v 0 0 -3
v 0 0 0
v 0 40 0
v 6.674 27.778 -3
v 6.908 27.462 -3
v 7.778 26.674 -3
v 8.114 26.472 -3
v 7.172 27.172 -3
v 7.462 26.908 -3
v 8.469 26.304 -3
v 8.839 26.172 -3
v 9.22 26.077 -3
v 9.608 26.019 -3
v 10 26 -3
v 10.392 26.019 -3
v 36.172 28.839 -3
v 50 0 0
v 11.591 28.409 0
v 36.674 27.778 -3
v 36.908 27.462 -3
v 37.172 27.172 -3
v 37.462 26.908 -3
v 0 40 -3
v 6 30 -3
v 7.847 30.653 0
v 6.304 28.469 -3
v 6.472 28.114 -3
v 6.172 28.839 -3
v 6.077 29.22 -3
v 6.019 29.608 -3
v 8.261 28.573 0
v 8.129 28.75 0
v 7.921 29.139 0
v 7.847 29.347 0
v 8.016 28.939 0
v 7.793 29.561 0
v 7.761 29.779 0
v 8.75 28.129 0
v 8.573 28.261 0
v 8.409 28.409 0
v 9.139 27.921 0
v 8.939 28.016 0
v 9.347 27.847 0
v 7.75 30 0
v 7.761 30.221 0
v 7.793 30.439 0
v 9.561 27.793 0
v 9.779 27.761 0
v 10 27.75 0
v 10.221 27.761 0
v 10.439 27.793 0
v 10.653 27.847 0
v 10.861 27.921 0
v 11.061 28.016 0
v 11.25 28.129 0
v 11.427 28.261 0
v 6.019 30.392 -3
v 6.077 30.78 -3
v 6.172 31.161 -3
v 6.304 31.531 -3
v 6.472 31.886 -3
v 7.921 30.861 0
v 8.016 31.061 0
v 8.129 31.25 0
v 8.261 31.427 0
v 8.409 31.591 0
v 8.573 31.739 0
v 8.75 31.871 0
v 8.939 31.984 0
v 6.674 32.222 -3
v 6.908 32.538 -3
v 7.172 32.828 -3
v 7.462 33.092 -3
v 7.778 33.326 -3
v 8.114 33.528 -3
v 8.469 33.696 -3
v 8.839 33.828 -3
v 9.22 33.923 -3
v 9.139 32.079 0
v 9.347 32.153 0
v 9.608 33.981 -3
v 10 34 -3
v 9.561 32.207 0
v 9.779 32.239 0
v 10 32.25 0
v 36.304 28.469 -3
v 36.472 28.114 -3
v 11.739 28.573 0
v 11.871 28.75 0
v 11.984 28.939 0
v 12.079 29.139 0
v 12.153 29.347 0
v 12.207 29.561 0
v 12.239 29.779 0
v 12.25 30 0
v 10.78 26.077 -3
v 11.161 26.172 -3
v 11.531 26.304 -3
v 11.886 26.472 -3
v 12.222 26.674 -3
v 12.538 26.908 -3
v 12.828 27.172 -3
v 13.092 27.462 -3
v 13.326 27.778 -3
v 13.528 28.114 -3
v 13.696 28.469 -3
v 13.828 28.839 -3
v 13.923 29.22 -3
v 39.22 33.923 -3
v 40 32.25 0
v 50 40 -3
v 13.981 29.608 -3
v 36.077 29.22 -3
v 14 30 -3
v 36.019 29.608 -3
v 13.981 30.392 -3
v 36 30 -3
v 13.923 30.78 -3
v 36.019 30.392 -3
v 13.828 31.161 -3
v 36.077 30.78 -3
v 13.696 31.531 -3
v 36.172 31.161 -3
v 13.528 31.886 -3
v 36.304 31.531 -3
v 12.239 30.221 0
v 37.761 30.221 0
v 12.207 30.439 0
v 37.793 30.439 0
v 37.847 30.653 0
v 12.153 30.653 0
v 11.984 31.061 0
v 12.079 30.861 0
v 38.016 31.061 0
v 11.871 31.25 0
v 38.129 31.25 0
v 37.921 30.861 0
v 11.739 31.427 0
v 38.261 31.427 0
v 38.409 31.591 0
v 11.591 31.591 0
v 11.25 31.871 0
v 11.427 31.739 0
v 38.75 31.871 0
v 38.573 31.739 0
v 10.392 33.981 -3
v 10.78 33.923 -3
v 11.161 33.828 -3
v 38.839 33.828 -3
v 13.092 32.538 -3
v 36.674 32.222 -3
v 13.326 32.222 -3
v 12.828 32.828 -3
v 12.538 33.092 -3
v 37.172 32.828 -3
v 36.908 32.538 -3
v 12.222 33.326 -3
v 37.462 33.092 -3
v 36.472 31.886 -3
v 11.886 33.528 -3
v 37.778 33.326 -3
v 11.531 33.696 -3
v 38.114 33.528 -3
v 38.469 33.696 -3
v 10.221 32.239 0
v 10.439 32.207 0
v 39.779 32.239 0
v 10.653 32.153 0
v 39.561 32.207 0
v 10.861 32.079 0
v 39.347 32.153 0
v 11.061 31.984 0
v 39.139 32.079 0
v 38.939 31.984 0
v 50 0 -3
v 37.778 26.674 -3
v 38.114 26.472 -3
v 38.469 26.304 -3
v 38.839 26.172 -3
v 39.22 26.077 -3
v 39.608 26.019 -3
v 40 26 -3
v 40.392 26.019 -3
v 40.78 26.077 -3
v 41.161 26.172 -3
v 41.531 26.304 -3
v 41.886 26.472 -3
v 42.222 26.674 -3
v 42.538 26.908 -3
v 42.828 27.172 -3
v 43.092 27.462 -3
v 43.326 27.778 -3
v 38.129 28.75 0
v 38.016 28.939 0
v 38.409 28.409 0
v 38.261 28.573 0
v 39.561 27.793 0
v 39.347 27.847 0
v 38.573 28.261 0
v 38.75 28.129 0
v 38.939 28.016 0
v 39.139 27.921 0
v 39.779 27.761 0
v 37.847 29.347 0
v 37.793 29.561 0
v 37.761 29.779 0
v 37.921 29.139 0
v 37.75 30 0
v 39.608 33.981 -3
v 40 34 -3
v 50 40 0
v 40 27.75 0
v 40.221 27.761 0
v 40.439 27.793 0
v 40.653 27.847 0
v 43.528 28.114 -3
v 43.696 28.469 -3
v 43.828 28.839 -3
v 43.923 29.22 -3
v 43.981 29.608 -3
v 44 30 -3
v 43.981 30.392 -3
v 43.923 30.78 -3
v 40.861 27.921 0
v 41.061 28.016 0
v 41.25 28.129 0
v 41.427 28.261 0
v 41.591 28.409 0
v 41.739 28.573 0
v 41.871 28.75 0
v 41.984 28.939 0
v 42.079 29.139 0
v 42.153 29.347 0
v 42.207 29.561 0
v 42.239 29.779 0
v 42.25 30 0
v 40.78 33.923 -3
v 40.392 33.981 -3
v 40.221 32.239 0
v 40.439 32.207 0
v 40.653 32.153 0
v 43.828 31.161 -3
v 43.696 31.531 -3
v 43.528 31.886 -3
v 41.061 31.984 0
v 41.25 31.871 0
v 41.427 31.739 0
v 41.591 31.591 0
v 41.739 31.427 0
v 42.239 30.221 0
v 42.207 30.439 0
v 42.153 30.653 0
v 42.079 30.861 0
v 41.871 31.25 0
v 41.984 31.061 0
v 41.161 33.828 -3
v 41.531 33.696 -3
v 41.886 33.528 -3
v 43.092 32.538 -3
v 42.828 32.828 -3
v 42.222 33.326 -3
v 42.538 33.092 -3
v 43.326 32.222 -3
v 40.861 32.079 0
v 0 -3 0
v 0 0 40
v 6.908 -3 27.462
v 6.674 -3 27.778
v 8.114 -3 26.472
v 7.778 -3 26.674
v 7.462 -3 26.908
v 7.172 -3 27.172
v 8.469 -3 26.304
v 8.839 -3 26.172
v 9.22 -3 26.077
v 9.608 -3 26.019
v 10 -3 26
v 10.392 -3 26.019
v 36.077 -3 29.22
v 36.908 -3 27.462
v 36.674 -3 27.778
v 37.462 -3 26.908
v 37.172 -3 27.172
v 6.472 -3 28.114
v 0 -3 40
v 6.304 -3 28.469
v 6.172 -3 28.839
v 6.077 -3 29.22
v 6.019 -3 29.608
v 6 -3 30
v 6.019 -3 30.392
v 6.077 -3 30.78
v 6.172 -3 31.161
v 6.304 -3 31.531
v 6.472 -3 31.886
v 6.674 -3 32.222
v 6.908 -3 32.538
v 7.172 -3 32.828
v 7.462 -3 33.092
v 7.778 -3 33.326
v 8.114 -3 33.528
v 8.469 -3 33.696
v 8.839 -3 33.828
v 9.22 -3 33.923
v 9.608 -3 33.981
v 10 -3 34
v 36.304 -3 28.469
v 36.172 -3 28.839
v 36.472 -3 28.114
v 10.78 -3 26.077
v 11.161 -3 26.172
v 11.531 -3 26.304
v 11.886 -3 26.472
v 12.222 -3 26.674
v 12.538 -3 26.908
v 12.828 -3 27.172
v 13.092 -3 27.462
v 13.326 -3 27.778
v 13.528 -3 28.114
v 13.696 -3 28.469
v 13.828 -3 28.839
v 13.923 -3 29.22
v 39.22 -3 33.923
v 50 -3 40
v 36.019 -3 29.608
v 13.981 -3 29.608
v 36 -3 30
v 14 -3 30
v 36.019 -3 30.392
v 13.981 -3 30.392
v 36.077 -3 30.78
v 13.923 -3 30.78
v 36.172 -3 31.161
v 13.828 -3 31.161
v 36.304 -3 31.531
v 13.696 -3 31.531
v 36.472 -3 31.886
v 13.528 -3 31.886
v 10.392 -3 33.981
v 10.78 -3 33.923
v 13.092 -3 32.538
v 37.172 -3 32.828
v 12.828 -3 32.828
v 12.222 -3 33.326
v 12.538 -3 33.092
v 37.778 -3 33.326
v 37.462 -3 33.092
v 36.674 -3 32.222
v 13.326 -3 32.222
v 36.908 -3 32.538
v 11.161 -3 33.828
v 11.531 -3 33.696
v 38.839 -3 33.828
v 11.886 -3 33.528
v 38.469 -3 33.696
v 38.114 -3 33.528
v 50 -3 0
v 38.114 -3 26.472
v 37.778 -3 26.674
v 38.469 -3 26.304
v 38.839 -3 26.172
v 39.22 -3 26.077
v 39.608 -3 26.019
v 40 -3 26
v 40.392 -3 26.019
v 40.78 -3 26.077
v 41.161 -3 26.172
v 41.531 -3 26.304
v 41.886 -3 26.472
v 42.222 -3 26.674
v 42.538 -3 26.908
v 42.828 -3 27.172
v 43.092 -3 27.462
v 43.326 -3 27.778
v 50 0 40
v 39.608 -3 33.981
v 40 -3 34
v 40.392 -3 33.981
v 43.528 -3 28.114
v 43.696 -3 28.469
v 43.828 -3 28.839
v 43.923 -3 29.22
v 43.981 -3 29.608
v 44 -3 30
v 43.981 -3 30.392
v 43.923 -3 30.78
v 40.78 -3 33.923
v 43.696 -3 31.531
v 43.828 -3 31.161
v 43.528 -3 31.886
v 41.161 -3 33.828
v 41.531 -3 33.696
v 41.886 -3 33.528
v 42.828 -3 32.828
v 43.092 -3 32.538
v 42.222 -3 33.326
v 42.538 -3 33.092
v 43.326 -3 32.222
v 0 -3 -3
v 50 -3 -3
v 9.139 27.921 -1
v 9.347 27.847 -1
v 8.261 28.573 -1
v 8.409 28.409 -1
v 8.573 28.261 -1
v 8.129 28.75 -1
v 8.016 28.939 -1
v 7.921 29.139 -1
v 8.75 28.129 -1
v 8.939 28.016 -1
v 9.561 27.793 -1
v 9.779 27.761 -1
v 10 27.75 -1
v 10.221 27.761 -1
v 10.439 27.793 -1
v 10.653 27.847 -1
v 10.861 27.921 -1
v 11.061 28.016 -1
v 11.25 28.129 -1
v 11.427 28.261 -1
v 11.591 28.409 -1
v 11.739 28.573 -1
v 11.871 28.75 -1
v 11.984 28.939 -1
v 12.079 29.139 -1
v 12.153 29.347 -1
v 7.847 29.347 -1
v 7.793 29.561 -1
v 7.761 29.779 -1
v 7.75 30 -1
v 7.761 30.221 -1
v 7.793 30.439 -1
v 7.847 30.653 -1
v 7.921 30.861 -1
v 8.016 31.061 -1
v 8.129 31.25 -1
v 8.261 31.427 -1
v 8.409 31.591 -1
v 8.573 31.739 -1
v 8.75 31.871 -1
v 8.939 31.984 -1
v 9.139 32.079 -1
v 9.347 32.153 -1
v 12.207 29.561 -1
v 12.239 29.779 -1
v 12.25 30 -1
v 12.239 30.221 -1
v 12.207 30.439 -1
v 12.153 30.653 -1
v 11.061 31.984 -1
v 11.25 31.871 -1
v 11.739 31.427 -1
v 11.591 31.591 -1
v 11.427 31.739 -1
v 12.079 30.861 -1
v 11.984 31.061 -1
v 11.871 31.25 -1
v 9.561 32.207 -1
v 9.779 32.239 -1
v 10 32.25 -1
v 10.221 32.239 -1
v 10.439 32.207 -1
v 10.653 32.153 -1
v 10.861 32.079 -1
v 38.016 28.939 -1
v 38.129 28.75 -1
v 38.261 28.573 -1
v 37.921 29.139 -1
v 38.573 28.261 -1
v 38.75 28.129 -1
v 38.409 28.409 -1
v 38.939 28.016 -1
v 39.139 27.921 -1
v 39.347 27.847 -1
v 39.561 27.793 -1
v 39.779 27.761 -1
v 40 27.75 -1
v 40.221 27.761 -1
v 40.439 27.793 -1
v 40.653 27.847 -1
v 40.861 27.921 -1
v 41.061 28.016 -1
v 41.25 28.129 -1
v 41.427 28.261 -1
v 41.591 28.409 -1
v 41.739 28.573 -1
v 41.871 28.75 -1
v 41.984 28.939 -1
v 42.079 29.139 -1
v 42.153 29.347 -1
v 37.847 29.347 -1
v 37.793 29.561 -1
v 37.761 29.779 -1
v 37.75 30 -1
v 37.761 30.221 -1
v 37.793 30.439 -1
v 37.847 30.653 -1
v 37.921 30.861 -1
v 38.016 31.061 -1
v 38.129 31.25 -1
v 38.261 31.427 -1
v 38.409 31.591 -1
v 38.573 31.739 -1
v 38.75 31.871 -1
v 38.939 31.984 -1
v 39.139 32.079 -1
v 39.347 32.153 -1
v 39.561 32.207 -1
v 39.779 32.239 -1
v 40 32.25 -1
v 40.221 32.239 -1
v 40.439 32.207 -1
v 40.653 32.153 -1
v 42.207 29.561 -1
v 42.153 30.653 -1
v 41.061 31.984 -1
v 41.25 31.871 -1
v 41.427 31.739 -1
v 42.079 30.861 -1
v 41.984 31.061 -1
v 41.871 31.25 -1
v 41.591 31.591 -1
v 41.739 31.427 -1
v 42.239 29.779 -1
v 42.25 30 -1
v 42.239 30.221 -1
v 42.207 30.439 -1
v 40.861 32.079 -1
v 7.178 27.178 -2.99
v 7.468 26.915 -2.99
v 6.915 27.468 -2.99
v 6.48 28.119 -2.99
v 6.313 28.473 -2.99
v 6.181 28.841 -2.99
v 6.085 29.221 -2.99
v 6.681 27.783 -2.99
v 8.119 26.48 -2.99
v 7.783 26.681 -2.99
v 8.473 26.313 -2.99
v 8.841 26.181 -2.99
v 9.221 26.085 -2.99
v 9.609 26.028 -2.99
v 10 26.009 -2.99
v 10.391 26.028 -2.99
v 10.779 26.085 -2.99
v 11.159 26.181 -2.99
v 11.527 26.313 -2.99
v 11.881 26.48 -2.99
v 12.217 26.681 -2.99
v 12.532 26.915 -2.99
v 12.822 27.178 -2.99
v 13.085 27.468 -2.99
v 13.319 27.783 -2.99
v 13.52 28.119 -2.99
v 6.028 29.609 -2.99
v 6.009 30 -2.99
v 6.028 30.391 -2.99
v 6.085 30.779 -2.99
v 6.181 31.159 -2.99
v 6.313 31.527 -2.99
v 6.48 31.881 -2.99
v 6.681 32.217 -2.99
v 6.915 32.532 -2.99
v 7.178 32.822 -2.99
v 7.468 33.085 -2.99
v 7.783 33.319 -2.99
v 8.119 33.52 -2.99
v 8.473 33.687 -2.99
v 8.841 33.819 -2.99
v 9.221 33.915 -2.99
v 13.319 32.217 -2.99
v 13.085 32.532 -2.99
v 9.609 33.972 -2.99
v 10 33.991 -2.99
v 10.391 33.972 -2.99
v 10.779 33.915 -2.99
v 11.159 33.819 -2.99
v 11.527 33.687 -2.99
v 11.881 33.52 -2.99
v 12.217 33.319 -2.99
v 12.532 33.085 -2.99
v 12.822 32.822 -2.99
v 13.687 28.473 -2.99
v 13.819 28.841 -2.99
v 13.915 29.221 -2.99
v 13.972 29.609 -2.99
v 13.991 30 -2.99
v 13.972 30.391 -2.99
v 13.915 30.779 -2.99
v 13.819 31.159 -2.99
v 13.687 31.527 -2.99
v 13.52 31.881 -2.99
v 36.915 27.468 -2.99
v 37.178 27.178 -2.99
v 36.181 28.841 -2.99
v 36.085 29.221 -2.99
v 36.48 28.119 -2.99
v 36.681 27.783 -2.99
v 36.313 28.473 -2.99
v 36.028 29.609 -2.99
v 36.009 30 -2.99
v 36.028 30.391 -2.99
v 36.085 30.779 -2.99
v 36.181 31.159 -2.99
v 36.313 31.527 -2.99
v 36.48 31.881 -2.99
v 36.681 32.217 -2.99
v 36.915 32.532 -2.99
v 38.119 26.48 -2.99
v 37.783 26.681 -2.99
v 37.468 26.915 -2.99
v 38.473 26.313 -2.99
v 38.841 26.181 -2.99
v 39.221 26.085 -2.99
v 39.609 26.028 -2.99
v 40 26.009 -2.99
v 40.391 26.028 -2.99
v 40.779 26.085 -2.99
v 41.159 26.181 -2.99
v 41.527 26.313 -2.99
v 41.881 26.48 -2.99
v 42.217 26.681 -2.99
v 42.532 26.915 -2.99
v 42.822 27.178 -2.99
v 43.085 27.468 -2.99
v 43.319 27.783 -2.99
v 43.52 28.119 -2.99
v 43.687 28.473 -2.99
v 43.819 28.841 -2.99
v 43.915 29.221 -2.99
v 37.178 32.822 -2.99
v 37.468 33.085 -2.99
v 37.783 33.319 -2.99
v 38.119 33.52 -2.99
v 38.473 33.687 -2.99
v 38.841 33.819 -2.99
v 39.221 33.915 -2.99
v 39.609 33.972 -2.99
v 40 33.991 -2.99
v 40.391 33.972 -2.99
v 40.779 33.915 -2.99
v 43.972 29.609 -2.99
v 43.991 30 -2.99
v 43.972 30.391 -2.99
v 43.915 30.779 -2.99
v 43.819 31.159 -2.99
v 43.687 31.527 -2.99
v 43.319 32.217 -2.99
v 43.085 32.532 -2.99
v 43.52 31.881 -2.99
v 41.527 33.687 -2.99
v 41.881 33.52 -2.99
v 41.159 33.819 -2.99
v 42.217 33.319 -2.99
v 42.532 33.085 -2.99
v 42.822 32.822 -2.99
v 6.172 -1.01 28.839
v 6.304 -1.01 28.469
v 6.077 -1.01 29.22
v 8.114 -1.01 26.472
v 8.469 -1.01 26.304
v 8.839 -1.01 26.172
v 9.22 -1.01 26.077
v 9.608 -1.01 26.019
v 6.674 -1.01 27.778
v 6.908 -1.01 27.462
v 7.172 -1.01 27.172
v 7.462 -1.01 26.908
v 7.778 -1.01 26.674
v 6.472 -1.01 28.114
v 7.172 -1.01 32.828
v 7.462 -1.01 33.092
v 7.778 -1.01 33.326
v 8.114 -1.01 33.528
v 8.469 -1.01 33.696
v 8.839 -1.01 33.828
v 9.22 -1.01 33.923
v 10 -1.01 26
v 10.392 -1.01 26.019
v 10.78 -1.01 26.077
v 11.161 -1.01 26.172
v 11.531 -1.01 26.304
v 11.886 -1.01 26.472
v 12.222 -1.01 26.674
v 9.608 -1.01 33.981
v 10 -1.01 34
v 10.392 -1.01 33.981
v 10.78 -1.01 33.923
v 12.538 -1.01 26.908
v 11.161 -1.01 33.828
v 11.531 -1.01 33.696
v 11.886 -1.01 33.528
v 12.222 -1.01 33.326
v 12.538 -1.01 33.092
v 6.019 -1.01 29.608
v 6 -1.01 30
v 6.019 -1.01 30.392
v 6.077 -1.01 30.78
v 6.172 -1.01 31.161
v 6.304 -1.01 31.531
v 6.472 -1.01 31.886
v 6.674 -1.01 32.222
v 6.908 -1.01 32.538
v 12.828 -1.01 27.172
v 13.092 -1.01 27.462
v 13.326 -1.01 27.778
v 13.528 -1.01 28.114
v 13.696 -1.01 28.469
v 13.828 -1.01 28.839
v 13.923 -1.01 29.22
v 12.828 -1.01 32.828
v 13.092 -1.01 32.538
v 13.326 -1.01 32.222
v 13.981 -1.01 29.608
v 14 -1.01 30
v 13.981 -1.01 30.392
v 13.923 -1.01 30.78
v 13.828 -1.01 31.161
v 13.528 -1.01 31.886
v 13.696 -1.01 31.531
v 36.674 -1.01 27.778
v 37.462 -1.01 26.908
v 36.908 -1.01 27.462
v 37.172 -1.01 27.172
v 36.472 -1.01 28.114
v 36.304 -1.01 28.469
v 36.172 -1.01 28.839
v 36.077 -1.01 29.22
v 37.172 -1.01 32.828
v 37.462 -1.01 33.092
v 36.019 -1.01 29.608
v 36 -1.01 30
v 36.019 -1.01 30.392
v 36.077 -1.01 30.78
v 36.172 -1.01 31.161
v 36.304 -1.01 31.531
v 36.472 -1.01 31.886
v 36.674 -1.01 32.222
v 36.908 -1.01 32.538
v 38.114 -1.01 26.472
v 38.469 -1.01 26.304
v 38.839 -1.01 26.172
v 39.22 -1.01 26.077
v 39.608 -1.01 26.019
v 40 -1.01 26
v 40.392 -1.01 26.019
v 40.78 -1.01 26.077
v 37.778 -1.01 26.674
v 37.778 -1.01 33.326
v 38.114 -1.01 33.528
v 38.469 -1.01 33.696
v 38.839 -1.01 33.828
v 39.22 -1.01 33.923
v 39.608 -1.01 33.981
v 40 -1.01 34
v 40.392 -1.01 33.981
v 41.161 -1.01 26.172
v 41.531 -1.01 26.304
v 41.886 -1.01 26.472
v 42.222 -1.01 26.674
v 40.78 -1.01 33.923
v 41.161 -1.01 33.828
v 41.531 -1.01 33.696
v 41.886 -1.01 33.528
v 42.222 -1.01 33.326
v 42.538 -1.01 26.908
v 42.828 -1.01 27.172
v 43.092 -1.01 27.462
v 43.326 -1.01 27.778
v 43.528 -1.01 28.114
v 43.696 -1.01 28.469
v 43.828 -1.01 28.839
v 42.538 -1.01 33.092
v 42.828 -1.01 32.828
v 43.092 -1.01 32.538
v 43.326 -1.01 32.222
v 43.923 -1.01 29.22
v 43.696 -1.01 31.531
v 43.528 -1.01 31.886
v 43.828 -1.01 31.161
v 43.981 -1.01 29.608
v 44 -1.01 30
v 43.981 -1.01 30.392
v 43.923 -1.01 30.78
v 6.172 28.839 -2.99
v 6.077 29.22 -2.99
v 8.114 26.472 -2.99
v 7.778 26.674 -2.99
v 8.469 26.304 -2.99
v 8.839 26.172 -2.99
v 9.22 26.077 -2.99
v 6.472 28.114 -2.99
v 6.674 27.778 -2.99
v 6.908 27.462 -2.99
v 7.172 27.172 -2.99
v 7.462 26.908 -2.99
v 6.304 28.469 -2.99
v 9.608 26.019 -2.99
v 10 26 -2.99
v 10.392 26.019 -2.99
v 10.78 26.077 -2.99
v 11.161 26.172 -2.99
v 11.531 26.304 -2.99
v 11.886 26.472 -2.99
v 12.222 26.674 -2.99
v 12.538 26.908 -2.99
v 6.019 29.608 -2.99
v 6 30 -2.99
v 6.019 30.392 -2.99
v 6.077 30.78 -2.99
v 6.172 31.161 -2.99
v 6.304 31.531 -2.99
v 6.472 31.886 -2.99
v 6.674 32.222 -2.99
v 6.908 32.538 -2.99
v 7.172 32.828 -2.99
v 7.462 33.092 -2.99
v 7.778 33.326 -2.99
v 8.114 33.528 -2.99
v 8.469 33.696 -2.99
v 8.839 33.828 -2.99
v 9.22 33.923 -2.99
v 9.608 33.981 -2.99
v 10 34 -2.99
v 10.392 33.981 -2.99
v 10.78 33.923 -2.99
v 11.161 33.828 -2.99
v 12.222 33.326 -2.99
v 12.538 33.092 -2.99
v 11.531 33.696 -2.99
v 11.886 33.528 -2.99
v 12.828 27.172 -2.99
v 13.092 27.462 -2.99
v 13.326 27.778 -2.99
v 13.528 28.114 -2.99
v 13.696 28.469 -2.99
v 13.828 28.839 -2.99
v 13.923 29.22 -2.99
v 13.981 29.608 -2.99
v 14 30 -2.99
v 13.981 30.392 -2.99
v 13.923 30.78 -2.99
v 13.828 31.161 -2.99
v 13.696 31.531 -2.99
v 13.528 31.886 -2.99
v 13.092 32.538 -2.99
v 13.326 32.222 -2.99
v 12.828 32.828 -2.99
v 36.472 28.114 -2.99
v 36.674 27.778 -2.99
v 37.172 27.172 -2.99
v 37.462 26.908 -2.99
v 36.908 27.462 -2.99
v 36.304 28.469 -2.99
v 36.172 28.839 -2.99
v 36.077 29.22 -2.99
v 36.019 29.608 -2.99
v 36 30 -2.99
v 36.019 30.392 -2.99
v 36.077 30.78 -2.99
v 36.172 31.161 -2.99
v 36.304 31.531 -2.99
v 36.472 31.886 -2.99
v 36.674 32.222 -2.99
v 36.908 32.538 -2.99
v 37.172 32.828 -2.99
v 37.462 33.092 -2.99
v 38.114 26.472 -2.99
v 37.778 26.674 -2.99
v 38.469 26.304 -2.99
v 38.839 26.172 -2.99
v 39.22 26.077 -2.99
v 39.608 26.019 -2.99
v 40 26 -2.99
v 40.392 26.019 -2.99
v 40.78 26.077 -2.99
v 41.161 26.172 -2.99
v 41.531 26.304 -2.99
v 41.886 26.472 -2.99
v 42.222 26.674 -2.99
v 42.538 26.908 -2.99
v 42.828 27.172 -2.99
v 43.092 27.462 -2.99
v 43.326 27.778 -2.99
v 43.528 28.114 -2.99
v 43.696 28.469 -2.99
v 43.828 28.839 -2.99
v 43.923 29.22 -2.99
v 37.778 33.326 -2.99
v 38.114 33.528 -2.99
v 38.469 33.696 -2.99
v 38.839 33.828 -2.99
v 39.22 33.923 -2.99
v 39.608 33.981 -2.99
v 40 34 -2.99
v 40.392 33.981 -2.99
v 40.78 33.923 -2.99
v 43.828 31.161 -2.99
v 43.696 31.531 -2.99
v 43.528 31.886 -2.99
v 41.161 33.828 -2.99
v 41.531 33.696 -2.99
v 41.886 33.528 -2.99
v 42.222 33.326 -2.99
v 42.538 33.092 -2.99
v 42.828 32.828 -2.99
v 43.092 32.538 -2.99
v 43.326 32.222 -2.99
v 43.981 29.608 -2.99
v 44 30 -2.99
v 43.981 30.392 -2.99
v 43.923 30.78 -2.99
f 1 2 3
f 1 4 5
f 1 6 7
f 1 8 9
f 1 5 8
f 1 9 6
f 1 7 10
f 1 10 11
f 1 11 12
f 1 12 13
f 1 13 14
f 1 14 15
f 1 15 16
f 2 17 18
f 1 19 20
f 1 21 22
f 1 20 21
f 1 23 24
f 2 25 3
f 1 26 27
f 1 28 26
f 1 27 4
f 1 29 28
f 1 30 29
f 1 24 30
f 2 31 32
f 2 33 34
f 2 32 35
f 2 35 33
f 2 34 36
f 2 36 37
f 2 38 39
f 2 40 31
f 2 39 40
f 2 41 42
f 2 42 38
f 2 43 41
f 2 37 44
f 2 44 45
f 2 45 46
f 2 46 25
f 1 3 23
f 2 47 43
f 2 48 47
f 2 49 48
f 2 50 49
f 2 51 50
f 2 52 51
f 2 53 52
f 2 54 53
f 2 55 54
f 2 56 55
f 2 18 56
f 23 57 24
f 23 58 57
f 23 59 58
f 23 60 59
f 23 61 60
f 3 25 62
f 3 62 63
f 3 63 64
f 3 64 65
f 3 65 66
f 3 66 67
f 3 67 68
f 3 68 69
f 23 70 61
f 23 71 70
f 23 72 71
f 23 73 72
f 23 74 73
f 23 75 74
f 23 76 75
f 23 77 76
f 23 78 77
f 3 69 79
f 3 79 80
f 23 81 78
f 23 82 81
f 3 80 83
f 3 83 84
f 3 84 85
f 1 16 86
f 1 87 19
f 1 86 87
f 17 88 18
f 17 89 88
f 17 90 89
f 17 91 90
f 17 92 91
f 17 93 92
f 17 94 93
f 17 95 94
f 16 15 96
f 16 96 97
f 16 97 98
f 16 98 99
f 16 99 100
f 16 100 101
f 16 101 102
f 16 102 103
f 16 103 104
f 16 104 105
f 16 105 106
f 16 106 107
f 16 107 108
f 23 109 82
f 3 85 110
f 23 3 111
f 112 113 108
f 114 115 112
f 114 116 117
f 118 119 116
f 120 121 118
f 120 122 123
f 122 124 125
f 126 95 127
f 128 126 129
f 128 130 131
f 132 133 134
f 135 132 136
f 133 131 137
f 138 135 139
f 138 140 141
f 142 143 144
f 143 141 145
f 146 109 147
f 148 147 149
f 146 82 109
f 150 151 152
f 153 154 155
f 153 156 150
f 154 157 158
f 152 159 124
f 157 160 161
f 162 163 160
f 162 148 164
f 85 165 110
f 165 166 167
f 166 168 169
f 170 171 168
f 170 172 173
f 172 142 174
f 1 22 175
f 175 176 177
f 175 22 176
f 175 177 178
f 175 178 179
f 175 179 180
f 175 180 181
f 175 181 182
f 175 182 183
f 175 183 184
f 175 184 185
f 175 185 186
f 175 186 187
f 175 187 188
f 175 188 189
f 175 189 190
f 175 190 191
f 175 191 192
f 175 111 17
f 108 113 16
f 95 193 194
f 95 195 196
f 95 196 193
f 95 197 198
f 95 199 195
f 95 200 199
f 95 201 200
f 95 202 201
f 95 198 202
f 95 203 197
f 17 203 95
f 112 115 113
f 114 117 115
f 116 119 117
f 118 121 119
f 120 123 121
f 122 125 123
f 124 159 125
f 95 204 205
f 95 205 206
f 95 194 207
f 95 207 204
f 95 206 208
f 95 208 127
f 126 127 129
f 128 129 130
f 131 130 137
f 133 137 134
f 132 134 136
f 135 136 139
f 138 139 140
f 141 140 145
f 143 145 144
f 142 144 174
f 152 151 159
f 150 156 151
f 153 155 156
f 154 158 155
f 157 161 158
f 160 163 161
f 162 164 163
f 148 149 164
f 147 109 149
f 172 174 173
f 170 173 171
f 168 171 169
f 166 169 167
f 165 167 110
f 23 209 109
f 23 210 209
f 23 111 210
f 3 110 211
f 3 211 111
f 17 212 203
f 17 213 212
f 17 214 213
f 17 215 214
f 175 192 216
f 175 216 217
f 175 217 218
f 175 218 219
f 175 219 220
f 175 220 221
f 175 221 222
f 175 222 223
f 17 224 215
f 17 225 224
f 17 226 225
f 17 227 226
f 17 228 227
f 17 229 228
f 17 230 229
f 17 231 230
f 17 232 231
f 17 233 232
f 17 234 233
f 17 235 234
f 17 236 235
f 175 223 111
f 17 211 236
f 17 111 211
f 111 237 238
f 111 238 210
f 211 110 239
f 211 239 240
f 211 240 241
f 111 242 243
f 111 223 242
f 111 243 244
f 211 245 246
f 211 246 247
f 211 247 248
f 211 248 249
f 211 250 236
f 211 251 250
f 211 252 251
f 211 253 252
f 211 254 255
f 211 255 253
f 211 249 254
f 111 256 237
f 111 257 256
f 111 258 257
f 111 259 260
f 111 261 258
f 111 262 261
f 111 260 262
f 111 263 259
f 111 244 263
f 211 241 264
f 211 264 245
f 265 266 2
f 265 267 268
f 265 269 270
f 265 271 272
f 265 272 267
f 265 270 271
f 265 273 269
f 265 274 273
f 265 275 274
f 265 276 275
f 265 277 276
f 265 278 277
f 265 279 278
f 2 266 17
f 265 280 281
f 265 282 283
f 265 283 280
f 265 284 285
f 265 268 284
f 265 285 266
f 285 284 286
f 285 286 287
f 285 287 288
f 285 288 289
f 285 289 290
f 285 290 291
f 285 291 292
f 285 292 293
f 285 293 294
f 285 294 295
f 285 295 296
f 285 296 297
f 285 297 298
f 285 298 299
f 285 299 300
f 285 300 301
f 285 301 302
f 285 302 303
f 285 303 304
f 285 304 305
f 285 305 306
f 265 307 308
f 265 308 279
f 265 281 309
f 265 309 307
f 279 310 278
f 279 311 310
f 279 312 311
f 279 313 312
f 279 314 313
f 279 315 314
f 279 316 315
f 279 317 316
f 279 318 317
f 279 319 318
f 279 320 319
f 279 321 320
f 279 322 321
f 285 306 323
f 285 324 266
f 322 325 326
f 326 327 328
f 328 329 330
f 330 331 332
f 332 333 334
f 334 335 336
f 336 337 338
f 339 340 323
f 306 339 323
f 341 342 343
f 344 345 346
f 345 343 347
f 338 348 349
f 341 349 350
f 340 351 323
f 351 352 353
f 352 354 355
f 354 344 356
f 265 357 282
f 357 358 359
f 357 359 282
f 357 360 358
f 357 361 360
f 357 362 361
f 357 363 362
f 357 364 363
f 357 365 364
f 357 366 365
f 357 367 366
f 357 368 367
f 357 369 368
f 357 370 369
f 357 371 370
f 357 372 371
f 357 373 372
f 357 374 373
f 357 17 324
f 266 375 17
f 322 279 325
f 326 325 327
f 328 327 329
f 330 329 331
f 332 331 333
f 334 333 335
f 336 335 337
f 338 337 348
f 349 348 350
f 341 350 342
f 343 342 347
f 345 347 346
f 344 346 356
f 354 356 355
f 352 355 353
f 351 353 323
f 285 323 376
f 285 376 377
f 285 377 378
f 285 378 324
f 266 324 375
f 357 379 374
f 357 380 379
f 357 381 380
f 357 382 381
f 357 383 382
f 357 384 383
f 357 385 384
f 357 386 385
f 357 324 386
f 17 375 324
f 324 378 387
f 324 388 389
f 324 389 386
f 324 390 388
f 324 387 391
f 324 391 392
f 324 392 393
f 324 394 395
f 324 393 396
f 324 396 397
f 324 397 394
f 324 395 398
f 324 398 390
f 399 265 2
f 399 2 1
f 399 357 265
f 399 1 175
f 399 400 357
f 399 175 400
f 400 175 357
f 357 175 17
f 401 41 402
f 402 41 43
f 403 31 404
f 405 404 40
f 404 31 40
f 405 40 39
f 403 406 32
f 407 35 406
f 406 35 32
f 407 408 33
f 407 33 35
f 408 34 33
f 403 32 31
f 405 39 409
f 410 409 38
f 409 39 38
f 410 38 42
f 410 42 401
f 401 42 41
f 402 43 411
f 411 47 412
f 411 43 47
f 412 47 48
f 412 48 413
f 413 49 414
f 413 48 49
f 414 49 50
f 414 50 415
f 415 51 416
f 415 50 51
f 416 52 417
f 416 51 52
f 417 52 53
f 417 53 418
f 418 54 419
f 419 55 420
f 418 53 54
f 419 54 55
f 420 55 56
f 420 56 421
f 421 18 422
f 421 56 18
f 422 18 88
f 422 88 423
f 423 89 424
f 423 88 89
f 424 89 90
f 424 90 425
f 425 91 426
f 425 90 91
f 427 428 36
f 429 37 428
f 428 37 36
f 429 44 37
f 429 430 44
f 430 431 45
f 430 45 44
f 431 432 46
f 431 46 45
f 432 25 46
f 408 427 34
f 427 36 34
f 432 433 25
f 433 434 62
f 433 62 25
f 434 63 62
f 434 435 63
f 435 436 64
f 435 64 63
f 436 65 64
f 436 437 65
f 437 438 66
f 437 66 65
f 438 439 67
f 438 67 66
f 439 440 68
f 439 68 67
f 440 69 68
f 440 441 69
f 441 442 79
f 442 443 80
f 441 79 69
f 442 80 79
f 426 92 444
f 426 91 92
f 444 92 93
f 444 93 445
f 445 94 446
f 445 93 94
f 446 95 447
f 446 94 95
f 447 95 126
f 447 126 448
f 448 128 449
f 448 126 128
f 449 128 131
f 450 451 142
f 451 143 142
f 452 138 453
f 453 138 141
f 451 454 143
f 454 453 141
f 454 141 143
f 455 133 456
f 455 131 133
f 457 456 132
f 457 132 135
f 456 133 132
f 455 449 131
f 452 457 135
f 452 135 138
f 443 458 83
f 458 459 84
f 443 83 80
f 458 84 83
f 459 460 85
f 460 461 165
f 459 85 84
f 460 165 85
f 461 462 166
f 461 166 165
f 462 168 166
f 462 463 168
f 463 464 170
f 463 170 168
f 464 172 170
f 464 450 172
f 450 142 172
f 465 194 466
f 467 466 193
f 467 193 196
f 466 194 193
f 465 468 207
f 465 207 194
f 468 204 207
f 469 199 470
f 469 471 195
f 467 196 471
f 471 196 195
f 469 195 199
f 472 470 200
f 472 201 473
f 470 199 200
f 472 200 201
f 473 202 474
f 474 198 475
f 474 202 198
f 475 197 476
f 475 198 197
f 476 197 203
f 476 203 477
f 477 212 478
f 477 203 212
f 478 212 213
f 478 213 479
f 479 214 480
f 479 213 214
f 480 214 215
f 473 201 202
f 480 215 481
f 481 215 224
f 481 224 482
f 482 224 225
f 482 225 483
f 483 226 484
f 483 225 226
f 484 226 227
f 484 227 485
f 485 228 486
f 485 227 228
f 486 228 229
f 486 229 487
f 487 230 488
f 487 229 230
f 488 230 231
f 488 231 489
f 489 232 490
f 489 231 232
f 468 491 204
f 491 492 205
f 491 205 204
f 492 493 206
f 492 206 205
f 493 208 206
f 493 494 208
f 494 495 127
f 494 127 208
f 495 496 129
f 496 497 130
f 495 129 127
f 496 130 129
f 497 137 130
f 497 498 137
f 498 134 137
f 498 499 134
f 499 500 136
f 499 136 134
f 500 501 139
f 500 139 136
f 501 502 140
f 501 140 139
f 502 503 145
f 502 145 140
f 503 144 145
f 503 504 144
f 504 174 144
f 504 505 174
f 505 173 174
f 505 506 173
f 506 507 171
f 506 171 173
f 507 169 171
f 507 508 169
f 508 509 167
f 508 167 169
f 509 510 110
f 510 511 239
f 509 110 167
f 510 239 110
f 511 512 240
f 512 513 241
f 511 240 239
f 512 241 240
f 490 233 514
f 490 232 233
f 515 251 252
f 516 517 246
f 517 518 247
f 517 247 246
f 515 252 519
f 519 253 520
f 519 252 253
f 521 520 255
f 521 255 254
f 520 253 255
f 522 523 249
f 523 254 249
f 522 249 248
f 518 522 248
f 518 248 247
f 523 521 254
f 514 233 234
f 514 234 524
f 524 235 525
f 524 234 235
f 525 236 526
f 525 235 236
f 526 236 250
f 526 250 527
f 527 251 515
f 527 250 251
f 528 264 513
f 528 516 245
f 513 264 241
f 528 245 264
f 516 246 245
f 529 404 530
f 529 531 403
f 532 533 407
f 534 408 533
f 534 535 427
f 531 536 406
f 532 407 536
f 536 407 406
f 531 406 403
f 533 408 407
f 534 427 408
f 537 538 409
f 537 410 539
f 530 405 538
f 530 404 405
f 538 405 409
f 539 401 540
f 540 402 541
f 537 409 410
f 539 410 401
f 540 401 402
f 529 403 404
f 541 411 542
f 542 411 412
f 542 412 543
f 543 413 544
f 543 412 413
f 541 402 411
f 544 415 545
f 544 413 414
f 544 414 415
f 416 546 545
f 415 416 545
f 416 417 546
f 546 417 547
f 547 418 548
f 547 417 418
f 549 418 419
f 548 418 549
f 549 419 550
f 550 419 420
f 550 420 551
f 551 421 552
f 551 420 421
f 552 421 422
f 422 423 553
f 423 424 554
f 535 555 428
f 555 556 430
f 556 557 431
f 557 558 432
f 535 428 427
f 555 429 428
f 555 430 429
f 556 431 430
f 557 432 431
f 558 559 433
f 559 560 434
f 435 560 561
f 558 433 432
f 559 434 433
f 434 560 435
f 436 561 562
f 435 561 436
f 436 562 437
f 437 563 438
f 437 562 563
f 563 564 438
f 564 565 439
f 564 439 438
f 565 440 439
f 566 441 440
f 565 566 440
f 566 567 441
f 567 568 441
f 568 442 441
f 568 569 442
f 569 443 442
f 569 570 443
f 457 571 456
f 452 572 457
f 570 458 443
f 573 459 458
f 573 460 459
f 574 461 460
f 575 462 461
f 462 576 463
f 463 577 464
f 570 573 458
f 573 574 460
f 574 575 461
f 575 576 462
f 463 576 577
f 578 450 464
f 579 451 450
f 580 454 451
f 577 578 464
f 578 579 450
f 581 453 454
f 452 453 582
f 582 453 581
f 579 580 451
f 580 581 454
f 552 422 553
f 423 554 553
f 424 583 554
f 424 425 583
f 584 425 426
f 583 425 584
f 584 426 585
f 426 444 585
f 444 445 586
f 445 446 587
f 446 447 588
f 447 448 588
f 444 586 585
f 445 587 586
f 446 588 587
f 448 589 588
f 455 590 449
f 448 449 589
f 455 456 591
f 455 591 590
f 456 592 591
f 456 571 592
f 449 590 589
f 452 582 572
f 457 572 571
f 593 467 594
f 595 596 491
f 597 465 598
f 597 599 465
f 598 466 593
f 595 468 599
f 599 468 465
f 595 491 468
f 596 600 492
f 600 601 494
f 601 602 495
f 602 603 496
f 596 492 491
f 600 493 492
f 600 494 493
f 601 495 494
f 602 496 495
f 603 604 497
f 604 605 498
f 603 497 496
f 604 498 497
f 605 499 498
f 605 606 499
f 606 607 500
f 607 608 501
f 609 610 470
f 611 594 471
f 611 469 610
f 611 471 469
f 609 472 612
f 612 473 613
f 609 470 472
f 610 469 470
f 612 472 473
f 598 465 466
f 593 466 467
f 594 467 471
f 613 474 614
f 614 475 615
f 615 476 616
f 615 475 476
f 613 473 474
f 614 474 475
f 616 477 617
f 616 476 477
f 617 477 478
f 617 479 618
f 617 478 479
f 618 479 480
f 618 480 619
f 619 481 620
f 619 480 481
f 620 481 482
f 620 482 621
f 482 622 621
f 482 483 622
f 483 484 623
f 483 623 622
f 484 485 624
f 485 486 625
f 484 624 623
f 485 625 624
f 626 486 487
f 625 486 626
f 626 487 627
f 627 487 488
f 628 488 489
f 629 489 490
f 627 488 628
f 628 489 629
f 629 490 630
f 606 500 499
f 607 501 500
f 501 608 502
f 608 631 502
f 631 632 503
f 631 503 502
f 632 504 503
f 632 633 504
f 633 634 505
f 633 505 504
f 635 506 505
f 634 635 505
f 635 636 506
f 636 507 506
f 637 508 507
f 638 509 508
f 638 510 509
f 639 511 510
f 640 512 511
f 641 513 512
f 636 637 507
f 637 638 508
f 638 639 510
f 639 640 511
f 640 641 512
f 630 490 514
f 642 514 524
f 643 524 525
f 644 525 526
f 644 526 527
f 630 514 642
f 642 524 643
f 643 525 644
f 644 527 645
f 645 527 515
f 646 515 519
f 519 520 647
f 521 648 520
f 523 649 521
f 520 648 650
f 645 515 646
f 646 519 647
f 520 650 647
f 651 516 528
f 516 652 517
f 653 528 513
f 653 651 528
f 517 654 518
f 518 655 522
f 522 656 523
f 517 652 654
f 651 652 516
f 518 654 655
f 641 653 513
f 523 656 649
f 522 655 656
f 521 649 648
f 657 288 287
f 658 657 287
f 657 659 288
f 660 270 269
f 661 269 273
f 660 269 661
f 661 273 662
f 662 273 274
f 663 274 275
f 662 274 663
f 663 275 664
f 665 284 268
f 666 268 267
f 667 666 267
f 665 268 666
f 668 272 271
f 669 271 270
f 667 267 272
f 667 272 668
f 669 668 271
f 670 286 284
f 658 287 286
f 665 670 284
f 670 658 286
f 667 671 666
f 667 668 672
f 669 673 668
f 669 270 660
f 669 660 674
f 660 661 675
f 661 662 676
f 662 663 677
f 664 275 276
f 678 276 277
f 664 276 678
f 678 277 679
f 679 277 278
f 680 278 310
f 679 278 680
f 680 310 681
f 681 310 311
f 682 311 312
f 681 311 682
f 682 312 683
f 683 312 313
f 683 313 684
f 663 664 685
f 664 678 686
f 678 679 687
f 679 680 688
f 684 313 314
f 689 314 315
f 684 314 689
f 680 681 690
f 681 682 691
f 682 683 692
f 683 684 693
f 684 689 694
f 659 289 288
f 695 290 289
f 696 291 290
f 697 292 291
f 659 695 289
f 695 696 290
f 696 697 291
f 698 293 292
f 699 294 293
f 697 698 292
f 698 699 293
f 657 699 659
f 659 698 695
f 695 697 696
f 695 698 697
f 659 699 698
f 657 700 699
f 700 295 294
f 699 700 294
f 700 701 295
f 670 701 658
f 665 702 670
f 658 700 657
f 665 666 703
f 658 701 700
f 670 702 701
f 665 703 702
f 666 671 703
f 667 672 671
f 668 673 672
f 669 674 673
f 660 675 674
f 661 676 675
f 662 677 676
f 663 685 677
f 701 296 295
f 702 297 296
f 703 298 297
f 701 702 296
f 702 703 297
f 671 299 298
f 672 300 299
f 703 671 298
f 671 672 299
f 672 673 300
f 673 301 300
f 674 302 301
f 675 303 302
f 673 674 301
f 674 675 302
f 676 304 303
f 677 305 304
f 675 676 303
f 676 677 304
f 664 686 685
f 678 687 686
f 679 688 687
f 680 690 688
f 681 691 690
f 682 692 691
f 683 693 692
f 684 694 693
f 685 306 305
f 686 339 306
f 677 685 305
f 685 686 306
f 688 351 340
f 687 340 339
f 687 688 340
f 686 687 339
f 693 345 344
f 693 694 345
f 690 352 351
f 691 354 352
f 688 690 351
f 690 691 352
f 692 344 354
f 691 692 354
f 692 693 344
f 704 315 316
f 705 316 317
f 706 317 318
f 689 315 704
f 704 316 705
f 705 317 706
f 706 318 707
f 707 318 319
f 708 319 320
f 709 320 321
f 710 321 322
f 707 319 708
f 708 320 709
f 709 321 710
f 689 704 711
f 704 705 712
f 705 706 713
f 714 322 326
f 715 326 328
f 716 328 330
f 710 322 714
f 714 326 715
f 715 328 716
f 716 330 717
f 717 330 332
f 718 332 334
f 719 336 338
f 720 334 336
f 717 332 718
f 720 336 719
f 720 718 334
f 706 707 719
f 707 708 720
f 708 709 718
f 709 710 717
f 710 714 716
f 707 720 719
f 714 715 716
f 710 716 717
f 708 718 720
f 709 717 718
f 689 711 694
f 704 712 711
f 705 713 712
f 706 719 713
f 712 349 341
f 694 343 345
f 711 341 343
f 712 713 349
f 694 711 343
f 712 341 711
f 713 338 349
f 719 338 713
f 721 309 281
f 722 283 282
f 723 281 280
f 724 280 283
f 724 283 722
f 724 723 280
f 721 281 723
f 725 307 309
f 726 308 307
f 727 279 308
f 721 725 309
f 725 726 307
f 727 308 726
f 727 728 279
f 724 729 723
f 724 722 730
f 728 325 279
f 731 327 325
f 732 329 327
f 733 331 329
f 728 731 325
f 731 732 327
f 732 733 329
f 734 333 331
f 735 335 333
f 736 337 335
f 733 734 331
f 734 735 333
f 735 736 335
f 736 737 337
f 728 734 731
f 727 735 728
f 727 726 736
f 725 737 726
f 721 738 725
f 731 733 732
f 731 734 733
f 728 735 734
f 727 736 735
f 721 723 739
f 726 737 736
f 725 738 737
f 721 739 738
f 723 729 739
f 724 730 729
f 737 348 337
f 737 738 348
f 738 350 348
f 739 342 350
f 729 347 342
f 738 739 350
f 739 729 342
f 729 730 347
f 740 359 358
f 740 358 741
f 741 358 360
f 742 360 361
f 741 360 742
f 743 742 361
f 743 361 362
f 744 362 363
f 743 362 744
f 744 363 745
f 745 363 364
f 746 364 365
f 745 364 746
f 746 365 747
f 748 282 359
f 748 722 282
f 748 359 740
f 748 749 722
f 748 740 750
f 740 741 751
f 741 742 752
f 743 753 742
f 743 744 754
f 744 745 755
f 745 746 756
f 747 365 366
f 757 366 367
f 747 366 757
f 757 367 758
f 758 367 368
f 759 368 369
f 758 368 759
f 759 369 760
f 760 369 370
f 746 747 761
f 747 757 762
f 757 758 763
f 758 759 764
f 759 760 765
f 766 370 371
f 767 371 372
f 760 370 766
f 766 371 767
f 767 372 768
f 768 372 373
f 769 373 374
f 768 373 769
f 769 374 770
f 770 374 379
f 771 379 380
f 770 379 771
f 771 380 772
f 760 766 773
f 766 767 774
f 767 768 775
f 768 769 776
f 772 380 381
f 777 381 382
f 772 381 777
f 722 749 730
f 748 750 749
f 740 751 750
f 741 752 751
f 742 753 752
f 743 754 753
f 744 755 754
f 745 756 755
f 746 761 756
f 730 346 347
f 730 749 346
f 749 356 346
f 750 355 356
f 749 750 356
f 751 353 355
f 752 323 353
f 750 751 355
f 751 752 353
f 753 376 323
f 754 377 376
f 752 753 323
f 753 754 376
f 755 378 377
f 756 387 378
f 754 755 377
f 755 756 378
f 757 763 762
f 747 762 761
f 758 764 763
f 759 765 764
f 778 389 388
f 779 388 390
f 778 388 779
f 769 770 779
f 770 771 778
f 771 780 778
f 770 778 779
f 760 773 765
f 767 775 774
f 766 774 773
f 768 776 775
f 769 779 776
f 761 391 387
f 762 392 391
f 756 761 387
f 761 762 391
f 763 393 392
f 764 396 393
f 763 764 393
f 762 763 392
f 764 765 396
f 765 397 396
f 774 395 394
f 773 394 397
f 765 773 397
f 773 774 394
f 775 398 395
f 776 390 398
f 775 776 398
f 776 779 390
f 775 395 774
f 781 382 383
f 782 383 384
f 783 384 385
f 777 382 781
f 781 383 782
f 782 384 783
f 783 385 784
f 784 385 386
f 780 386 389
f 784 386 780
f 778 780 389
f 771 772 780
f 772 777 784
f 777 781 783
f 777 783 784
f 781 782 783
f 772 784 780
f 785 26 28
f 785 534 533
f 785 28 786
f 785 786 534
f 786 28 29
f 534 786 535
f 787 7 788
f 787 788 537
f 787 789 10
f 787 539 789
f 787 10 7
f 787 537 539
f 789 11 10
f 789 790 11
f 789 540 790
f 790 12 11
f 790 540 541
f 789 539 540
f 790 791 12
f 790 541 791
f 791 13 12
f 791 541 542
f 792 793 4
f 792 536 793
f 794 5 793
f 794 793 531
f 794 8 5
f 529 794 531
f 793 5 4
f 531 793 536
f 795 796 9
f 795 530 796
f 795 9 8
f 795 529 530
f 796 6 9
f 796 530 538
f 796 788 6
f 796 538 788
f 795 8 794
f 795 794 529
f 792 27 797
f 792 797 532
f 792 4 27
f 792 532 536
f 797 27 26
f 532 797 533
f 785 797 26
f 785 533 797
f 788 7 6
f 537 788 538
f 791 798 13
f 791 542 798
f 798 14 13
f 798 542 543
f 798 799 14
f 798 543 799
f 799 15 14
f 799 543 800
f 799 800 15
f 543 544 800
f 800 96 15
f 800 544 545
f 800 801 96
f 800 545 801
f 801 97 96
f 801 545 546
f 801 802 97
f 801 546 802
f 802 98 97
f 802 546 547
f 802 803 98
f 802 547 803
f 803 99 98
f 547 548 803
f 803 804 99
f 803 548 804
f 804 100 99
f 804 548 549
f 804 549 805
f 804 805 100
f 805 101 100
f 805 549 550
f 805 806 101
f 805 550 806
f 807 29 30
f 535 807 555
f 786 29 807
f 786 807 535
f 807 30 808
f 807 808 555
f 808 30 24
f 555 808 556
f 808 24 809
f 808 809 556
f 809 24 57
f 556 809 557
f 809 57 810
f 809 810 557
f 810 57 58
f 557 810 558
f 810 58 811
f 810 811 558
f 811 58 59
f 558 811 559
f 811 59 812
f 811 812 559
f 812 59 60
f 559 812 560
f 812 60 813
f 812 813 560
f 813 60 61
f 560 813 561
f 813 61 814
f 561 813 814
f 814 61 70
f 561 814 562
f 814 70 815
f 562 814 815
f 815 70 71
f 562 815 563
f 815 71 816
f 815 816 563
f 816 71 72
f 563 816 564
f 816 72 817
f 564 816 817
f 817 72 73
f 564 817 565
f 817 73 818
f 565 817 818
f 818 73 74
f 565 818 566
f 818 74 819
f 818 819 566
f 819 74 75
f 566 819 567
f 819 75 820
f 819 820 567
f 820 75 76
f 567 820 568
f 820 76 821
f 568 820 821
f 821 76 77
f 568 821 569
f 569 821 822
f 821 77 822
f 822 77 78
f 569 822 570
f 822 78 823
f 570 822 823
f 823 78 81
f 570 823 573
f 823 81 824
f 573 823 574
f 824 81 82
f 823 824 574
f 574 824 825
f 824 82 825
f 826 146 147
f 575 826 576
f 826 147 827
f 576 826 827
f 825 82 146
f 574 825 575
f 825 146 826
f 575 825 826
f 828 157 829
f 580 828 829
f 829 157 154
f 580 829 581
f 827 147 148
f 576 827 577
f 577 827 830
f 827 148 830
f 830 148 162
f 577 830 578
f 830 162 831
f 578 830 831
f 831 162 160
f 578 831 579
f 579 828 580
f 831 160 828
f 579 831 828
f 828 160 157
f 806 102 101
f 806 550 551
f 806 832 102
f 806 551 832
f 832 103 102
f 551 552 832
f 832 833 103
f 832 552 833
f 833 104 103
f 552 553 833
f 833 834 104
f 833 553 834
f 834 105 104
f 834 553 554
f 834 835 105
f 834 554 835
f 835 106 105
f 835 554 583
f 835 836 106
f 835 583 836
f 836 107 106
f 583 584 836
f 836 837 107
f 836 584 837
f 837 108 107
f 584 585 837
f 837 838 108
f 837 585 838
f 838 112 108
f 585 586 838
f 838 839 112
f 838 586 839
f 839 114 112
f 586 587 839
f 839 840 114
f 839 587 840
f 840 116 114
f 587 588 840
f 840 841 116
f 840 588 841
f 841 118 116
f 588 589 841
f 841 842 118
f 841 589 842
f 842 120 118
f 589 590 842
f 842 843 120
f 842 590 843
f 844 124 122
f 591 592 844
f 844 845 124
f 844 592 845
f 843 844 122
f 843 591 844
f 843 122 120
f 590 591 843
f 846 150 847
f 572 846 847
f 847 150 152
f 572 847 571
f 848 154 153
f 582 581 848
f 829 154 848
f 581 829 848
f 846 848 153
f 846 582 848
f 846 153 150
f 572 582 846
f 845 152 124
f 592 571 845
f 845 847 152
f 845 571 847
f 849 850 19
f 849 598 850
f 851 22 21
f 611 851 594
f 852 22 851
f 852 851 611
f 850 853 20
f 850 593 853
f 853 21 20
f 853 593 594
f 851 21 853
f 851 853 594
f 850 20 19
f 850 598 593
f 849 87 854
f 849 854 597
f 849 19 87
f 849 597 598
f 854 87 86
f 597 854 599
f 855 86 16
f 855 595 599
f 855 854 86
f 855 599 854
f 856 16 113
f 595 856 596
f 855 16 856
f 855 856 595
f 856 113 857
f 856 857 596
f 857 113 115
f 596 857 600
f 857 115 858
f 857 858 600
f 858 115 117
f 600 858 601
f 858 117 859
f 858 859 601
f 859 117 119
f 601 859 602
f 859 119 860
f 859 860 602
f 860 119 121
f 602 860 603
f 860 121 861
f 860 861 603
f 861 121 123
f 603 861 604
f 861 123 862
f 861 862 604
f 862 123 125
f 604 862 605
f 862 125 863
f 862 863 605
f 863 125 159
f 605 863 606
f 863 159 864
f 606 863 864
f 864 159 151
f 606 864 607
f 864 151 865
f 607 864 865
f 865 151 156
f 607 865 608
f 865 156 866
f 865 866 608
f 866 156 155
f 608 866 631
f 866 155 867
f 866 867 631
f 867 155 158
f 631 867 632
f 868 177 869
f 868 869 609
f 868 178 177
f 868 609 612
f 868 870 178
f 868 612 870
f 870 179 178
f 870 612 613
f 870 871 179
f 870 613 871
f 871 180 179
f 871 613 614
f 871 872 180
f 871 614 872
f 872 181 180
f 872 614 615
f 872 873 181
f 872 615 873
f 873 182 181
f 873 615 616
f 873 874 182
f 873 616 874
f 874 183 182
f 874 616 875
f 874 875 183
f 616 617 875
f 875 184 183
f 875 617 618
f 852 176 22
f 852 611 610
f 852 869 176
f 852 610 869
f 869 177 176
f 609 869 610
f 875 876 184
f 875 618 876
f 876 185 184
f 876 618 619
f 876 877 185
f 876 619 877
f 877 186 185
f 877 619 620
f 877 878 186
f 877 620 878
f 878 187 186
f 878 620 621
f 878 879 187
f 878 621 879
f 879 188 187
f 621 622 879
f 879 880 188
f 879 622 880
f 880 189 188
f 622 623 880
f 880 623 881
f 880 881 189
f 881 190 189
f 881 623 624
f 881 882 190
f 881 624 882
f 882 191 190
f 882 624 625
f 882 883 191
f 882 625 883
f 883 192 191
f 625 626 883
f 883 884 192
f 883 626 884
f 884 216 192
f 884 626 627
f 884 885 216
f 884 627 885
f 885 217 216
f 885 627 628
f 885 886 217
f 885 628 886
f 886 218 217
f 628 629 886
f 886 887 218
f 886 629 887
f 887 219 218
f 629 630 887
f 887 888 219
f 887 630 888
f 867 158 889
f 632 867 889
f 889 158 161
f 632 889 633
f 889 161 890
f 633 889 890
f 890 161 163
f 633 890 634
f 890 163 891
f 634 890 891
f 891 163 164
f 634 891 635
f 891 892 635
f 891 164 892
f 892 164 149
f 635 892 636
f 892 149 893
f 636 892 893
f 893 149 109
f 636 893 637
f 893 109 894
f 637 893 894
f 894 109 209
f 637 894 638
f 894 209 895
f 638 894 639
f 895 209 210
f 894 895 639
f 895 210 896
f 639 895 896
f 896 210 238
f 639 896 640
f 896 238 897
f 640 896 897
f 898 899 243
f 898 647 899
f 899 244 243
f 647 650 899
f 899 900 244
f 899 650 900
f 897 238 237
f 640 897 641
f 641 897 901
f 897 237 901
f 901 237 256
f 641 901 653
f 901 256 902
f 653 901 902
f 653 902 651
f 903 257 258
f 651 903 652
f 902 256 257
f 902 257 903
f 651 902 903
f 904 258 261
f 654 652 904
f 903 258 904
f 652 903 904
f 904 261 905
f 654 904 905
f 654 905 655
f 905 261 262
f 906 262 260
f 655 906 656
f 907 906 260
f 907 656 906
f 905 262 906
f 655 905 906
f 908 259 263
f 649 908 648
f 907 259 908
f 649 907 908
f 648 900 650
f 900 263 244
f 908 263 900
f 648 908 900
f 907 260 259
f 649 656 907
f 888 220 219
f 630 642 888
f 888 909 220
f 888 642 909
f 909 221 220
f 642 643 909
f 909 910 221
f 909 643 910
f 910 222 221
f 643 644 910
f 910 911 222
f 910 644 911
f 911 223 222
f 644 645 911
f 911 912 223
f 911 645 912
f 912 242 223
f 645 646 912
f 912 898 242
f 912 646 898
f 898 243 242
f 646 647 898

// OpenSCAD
// L-bracket with countersunk holes for M4 screws
// Inner corner at origin; horizontal flange extends +Y, vertical flange extends +Z

// ---------- Parameters ----------
width      = 50;   // X: common width of both flanges
h_depth    = 40;   // Y: horizontal flange depth
v_height   = 40;   // Z: vertical flange height
thick      = 3;    // plate thickness

hole_d     = 4.5;  // through hole diameter (M4 clearance)
cs_d       = 8;    // countersink face diameter
cs_depth   = 2;    // countersink depth

edge_off   = 10;   // distance from flange outer edge to hole center
x_off      = 15;   // holes symmetric about X center, +/- x_off

$fn = 64;

// ---------- Countersunk hole cutter ----------
// Cut along -Z direction from the outer surface (z = 0 is the outer face).
// Countersink cone opens upward (toward the tool/bolt head side).
module countersunk_hole(plate_t = thick) {
    eps = 0.01;
    union() {
        // through hole
        translate([0, 0, -plate_t - eps])
            cylinder(h = plate_t + 2 * eps, d = hole_d);
        // countersink cone (cs_d at outer face -> hole_d at cs_depth)
        translate([0, 0, -cs_depth])
            cylinder(h = cs_depth, d1 = hole_d, d2 = cs_d);
        // small clearance above the outer face
        translate([0, 0, -eps])
            cylinder(h = cs_depth, d = cs_d);
    }
}

// ---------- Bracket ----------
module l_bracket() {
    difference() {
        union() {
            // horizontal flange: X 0..width, Y 0..h_depth, Z -thick..0
            translate([0, 0, -thick])
                cube([width, h_depth, thick]);
            // vertical flange: X 0..width, Y -thick..0, Z 0..v_height
            translate([0, -thick, 0])
                cube([width, thick, v_height]);
            // fill inner corner block
            translate([0, -thick, -thick])
                cube([width, thick, thick]);
        }

        // --- holes in horizontal flange (countersink on bottom, z = -thick) ---
        for (dx = [-x_off, x_off])
            translate([width / 2 + dx, h_depth - edge_off, -thick])
                rotate([180, 0, 0])
                    countersunk_hole(thick);

        // --- holes in vertical flange (countersink on front, y = -thick) ---
        for (dx = [-x_off, x_off])
            translate([width / 2 + dx, -thick, v_height - edge_off])
                rotate([-90, 0, 0])
                    countersunk_hole(thick);
    }
}

l_bracket();
